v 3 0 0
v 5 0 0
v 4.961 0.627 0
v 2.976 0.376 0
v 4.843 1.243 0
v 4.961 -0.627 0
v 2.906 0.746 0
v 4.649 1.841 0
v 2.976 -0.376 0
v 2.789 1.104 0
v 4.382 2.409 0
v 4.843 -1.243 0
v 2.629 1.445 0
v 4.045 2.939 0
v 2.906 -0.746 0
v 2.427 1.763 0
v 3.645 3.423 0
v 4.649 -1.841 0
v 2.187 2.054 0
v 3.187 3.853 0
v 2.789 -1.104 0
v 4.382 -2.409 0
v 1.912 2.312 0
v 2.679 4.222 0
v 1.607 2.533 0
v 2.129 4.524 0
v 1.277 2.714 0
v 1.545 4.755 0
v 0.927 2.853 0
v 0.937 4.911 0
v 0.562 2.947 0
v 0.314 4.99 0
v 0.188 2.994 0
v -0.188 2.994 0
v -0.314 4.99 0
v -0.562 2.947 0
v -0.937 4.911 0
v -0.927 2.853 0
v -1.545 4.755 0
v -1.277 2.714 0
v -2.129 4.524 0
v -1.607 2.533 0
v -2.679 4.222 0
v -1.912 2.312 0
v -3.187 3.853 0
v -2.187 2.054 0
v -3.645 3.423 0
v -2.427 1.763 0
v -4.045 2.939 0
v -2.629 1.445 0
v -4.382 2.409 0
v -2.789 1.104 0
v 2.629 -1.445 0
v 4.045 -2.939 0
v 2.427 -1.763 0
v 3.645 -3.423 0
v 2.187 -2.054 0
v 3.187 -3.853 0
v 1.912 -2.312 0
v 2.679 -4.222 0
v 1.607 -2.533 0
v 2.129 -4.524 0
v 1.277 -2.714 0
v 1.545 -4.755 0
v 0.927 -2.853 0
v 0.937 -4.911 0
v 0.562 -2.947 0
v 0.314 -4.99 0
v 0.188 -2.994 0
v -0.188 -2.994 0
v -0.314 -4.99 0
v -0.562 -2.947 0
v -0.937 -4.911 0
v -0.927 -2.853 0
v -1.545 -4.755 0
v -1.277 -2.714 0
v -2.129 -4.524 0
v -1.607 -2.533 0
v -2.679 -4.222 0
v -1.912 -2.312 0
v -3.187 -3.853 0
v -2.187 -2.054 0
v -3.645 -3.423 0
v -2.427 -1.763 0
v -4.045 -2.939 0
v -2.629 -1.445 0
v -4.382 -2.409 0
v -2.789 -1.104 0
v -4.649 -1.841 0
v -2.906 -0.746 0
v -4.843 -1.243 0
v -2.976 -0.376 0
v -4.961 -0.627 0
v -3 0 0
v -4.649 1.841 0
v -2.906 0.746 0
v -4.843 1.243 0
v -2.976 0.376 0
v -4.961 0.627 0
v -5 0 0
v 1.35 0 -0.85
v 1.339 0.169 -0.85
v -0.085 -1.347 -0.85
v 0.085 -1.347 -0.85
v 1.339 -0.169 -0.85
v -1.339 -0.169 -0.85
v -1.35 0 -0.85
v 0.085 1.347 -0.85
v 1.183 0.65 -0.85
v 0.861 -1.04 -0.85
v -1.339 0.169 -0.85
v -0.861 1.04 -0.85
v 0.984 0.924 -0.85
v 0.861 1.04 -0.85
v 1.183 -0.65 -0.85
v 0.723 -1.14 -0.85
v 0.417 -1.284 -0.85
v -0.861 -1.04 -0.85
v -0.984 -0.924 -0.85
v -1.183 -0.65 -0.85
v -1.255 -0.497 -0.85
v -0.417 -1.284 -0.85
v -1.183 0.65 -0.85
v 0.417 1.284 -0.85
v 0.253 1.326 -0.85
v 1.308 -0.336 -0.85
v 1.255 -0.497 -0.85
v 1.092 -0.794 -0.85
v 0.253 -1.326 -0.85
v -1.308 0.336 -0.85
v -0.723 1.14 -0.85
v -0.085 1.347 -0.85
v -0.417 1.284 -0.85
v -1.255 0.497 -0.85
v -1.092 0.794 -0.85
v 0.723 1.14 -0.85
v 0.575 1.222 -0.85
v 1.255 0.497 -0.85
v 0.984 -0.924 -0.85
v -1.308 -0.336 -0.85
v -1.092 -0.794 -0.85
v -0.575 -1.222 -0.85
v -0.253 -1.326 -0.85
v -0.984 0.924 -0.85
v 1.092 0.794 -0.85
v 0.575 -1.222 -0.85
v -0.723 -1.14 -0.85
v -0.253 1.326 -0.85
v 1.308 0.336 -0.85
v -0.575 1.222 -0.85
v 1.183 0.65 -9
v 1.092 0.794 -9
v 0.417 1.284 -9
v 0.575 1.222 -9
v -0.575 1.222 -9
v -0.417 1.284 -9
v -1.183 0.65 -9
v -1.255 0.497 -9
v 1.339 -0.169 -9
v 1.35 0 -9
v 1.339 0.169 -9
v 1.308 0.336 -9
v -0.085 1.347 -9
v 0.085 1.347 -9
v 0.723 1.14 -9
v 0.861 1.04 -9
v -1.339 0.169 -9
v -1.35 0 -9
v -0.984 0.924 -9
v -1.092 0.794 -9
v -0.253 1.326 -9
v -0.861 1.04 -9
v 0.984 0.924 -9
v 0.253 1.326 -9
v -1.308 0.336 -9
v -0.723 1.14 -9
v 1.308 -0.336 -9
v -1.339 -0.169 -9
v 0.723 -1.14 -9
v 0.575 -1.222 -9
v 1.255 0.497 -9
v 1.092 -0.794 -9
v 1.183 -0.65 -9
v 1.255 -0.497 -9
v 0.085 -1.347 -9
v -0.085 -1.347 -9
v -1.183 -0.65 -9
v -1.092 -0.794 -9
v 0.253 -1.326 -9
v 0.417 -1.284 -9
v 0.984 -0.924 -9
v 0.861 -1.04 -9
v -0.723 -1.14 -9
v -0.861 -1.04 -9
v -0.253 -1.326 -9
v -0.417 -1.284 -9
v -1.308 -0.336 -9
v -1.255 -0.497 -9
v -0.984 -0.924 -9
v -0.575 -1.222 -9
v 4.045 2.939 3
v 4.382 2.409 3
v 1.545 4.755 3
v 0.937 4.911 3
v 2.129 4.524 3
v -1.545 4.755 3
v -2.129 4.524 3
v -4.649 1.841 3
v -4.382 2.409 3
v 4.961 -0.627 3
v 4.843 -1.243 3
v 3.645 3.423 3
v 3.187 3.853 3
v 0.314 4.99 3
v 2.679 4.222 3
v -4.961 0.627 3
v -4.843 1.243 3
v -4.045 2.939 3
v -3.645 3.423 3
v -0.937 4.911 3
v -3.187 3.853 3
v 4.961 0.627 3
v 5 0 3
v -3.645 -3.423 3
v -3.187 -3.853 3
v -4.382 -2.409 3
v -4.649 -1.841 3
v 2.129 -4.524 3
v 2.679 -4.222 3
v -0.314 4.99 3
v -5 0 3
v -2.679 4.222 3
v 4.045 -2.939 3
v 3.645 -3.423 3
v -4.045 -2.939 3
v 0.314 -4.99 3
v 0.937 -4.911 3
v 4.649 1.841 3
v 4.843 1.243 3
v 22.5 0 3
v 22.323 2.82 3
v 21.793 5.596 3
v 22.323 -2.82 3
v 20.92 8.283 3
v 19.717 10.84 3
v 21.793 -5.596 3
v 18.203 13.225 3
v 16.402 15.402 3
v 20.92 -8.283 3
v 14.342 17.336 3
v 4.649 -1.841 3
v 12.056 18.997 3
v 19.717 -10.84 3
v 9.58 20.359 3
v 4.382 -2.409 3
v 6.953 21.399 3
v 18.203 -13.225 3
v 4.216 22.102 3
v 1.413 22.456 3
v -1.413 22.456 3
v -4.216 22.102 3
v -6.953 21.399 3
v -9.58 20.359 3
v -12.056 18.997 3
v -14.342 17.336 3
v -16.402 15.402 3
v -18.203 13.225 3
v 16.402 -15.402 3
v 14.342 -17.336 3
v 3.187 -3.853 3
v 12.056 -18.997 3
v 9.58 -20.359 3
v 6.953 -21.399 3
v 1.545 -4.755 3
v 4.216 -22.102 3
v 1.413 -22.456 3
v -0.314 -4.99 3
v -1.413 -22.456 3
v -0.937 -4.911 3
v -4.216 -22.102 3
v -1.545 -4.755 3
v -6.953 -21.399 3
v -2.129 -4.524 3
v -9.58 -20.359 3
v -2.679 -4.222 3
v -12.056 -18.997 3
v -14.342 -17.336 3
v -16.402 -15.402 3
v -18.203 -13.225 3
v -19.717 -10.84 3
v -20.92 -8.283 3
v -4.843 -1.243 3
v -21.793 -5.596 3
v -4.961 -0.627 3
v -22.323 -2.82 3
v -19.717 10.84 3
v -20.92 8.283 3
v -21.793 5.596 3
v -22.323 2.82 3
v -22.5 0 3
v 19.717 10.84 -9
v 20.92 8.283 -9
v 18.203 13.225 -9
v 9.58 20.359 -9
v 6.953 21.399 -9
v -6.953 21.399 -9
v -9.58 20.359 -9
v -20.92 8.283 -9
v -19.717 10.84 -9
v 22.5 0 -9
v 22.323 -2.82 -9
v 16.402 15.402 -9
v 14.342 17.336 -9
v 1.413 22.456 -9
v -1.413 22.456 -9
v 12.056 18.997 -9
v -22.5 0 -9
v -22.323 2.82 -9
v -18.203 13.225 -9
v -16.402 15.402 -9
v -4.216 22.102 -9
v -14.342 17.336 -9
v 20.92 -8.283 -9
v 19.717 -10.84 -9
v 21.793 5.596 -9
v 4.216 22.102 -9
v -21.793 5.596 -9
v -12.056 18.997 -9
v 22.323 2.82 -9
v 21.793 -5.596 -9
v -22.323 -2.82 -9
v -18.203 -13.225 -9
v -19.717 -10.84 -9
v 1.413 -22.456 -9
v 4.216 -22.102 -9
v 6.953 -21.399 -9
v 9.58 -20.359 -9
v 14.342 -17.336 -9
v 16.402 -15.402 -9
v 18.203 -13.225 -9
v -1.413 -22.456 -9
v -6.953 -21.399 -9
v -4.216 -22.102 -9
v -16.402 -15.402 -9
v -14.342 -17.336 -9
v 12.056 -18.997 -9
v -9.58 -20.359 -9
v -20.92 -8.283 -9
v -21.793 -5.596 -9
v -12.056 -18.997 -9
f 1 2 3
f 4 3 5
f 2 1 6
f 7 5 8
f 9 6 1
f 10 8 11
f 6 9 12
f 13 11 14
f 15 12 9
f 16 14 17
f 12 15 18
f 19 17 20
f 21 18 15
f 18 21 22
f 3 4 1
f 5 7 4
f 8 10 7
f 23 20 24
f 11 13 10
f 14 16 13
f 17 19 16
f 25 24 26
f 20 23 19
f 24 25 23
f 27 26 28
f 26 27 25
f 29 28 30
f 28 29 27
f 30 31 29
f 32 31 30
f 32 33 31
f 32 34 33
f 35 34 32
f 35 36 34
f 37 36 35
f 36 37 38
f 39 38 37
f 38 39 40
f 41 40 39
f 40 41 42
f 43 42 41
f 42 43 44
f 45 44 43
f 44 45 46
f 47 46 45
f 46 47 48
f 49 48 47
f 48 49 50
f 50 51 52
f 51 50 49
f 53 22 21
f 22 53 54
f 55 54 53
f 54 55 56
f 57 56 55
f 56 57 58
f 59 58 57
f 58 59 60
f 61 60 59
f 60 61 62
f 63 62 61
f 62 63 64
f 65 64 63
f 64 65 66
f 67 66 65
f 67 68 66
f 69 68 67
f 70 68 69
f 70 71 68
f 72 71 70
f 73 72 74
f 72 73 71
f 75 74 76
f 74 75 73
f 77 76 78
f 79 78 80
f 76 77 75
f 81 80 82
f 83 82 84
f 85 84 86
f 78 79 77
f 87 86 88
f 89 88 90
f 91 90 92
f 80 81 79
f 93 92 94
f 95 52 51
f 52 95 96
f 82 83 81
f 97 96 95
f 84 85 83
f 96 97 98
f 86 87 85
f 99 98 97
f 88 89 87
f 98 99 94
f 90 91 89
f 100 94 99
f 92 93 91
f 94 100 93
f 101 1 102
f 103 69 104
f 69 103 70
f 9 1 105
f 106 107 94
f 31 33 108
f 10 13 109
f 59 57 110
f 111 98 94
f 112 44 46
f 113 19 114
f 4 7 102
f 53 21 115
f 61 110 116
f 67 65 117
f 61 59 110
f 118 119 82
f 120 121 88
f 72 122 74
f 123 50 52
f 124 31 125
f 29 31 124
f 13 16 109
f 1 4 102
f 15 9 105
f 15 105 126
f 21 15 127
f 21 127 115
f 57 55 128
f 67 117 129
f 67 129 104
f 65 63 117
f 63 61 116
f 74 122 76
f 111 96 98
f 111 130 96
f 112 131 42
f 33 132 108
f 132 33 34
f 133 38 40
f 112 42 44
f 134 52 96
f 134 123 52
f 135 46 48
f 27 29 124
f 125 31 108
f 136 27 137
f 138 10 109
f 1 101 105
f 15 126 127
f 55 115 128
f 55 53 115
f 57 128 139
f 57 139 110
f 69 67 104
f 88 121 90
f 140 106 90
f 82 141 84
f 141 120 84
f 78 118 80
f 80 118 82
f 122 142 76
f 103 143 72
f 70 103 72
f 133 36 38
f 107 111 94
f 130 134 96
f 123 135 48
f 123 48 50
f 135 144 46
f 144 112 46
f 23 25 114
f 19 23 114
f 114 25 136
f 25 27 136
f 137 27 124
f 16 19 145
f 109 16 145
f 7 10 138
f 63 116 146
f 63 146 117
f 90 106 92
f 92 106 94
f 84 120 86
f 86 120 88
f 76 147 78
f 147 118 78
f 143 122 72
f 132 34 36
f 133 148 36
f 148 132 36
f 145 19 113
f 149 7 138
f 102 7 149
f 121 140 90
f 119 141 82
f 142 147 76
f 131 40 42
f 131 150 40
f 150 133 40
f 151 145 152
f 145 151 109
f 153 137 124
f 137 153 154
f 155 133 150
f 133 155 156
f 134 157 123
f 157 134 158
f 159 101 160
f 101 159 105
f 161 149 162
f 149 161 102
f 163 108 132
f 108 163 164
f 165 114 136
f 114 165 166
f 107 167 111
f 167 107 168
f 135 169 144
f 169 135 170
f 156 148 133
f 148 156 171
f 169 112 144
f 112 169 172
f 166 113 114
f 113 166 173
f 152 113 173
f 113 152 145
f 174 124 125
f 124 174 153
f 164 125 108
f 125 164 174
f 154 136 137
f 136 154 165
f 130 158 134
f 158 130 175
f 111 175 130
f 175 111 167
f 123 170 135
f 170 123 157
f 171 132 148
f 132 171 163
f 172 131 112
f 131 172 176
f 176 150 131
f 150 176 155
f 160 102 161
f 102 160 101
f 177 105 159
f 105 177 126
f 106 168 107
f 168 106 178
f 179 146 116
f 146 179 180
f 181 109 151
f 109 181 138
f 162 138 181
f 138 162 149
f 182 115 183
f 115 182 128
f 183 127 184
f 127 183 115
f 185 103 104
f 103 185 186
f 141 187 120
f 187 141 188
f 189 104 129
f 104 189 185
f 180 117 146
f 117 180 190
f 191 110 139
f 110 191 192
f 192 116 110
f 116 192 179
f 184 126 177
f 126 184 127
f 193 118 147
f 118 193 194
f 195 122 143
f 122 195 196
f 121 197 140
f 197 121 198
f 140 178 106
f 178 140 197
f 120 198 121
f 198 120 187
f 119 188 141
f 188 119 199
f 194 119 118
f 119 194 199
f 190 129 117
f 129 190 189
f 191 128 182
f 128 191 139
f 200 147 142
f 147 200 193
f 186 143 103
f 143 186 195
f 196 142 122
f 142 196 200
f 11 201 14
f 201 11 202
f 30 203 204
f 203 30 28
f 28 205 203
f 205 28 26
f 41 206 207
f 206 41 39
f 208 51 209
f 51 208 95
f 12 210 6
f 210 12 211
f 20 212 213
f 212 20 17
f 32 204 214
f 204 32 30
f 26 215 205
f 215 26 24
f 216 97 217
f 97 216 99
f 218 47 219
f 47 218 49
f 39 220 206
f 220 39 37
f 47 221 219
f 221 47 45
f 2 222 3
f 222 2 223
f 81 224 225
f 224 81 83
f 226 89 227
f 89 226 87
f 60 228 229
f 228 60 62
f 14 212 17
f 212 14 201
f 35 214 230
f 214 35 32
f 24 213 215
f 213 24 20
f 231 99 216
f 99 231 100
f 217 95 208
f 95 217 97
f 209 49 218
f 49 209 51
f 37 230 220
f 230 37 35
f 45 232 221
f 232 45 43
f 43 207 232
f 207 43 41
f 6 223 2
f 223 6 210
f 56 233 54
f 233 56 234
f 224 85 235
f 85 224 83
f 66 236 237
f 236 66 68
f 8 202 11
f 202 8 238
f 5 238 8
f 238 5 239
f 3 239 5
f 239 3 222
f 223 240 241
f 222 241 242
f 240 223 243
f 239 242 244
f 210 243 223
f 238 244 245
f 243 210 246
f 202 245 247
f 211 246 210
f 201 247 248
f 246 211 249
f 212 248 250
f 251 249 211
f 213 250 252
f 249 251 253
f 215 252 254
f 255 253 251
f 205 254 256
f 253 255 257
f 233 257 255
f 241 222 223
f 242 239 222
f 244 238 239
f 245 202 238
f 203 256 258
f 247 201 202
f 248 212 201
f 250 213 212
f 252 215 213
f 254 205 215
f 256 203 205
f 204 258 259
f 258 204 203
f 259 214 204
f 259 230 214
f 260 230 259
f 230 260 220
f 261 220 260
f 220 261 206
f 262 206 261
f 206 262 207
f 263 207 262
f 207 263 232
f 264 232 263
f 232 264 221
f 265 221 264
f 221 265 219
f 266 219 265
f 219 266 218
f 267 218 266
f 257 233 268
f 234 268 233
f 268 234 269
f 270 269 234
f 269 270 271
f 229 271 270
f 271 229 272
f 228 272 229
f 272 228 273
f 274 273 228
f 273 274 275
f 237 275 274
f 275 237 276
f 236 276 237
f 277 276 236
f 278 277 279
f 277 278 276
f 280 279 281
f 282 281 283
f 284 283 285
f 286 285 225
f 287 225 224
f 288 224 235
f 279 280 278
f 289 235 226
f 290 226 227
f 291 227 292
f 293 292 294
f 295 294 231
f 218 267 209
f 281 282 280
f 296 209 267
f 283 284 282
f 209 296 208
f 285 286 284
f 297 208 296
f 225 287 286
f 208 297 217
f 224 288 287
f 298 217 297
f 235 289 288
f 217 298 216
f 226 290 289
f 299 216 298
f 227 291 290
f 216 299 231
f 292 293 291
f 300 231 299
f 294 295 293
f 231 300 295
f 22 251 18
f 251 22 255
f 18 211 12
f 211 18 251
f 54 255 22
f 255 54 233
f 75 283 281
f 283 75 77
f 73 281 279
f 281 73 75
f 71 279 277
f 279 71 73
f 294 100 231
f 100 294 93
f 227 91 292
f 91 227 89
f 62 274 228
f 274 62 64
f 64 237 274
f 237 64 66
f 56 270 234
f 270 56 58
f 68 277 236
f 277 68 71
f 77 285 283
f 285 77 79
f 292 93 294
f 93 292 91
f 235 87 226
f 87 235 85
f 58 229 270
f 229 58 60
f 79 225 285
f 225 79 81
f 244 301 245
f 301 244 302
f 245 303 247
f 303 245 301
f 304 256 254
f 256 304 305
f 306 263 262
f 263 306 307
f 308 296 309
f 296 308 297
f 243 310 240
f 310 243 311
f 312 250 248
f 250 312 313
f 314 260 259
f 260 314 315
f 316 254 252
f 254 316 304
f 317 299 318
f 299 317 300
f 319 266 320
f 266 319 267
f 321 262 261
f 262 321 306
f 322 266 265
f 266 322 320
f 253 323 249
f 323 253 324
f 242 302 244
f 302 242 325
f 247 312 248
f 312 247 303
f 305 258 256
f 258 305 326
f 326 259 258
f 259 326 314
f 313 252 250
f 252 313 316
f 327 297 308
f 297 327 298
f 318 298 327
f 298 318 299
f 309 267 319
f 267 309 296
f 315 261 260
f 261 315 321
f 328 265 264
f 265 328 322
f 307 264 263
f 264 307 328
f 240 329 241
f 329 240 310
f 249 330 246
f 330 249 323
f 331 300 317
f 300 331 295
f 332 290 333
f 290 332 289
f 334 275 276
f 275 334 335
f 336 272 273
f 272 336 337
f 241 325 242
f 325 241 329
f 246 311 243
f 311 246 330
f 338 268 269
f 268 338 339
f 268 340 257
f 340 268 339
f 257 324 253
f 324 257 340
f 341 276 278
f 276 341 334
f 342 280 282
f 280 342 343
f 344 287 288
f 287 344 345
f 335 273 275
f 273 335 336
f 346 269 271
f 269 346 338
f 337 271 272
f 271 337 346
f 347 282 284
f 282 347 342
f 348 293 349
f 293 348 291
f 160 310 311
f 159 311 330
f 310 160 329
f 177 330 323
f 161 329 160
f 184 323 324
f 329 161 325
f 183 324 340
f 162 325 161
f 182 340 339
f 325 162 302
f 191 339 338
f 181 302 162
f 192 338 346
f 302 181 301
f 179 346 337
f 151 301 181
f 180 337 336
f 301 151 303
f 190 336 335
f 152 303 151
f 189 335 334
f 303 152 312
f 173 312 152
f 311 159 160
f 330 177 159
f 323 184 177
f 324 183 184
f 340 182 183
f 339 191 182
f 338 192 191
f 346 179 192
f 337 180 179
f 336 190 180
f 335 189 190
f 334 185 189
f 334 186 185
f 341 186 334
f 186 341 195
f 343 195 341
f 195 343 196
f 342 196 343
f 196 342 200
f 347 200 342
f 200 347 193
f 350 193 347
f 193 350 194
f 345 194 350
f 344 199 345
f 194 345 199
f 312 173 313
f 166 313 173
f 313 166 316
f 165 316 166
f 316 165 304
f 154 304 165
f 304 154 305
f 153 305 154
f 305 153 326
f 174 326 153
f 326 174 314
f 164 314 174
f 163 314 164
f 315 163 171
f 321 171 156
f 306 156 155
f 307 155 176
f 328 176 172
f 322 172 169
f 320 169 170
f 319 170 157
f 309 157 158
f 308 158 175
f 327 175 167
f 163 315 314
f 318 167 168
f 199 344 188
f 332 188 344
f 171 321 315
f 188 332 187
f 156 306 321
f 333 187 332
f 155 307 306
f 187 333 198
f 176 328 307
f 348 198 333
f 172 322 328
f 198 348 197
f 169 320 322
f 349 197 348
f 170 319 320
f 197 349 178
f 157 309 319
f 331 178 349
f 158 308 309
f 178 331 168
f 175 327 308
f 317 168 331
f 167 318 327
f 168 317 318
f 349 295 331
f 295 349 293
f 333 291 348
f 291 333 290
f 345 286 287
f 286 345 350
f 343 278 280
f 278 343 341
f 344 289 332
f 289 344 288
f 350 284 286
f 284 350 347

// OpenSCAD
$fn = 50;


difference() {
	union() {
		translate(v = [0, 0, -9.0000000000]) {
			cylinder(h = 12, r = 22.5000000000);
		}
	}
	union() {
		translate(v = [0, 0, 0]) {
			rotate(a = [0, 0, 0]) {
				difference() {
					union() {
						translate(v = [0, 0, -12.0000000000]) {
							cylinder(h = 12, r = 1.0000000000);
						}
						translate(v = [0, 0, -0.8500000000]) {
							cylinder(h = 0.8500000000, r1 = 1.3500000000, r2 = 3.0000000000);
						}
						translate(v = [0, 0, -12.0000000000]) {
							cylinder(h = 12, r = 1.3500000000);
						}
						translate(v = [0, 0, -12.0000000000]) {
							cylinder(h = 12, r = 1.0000000000);
						}
					}
					union();
				}
			}
		}
		#cylinder(h = 3, r = 5.0000000000);
	}
}
